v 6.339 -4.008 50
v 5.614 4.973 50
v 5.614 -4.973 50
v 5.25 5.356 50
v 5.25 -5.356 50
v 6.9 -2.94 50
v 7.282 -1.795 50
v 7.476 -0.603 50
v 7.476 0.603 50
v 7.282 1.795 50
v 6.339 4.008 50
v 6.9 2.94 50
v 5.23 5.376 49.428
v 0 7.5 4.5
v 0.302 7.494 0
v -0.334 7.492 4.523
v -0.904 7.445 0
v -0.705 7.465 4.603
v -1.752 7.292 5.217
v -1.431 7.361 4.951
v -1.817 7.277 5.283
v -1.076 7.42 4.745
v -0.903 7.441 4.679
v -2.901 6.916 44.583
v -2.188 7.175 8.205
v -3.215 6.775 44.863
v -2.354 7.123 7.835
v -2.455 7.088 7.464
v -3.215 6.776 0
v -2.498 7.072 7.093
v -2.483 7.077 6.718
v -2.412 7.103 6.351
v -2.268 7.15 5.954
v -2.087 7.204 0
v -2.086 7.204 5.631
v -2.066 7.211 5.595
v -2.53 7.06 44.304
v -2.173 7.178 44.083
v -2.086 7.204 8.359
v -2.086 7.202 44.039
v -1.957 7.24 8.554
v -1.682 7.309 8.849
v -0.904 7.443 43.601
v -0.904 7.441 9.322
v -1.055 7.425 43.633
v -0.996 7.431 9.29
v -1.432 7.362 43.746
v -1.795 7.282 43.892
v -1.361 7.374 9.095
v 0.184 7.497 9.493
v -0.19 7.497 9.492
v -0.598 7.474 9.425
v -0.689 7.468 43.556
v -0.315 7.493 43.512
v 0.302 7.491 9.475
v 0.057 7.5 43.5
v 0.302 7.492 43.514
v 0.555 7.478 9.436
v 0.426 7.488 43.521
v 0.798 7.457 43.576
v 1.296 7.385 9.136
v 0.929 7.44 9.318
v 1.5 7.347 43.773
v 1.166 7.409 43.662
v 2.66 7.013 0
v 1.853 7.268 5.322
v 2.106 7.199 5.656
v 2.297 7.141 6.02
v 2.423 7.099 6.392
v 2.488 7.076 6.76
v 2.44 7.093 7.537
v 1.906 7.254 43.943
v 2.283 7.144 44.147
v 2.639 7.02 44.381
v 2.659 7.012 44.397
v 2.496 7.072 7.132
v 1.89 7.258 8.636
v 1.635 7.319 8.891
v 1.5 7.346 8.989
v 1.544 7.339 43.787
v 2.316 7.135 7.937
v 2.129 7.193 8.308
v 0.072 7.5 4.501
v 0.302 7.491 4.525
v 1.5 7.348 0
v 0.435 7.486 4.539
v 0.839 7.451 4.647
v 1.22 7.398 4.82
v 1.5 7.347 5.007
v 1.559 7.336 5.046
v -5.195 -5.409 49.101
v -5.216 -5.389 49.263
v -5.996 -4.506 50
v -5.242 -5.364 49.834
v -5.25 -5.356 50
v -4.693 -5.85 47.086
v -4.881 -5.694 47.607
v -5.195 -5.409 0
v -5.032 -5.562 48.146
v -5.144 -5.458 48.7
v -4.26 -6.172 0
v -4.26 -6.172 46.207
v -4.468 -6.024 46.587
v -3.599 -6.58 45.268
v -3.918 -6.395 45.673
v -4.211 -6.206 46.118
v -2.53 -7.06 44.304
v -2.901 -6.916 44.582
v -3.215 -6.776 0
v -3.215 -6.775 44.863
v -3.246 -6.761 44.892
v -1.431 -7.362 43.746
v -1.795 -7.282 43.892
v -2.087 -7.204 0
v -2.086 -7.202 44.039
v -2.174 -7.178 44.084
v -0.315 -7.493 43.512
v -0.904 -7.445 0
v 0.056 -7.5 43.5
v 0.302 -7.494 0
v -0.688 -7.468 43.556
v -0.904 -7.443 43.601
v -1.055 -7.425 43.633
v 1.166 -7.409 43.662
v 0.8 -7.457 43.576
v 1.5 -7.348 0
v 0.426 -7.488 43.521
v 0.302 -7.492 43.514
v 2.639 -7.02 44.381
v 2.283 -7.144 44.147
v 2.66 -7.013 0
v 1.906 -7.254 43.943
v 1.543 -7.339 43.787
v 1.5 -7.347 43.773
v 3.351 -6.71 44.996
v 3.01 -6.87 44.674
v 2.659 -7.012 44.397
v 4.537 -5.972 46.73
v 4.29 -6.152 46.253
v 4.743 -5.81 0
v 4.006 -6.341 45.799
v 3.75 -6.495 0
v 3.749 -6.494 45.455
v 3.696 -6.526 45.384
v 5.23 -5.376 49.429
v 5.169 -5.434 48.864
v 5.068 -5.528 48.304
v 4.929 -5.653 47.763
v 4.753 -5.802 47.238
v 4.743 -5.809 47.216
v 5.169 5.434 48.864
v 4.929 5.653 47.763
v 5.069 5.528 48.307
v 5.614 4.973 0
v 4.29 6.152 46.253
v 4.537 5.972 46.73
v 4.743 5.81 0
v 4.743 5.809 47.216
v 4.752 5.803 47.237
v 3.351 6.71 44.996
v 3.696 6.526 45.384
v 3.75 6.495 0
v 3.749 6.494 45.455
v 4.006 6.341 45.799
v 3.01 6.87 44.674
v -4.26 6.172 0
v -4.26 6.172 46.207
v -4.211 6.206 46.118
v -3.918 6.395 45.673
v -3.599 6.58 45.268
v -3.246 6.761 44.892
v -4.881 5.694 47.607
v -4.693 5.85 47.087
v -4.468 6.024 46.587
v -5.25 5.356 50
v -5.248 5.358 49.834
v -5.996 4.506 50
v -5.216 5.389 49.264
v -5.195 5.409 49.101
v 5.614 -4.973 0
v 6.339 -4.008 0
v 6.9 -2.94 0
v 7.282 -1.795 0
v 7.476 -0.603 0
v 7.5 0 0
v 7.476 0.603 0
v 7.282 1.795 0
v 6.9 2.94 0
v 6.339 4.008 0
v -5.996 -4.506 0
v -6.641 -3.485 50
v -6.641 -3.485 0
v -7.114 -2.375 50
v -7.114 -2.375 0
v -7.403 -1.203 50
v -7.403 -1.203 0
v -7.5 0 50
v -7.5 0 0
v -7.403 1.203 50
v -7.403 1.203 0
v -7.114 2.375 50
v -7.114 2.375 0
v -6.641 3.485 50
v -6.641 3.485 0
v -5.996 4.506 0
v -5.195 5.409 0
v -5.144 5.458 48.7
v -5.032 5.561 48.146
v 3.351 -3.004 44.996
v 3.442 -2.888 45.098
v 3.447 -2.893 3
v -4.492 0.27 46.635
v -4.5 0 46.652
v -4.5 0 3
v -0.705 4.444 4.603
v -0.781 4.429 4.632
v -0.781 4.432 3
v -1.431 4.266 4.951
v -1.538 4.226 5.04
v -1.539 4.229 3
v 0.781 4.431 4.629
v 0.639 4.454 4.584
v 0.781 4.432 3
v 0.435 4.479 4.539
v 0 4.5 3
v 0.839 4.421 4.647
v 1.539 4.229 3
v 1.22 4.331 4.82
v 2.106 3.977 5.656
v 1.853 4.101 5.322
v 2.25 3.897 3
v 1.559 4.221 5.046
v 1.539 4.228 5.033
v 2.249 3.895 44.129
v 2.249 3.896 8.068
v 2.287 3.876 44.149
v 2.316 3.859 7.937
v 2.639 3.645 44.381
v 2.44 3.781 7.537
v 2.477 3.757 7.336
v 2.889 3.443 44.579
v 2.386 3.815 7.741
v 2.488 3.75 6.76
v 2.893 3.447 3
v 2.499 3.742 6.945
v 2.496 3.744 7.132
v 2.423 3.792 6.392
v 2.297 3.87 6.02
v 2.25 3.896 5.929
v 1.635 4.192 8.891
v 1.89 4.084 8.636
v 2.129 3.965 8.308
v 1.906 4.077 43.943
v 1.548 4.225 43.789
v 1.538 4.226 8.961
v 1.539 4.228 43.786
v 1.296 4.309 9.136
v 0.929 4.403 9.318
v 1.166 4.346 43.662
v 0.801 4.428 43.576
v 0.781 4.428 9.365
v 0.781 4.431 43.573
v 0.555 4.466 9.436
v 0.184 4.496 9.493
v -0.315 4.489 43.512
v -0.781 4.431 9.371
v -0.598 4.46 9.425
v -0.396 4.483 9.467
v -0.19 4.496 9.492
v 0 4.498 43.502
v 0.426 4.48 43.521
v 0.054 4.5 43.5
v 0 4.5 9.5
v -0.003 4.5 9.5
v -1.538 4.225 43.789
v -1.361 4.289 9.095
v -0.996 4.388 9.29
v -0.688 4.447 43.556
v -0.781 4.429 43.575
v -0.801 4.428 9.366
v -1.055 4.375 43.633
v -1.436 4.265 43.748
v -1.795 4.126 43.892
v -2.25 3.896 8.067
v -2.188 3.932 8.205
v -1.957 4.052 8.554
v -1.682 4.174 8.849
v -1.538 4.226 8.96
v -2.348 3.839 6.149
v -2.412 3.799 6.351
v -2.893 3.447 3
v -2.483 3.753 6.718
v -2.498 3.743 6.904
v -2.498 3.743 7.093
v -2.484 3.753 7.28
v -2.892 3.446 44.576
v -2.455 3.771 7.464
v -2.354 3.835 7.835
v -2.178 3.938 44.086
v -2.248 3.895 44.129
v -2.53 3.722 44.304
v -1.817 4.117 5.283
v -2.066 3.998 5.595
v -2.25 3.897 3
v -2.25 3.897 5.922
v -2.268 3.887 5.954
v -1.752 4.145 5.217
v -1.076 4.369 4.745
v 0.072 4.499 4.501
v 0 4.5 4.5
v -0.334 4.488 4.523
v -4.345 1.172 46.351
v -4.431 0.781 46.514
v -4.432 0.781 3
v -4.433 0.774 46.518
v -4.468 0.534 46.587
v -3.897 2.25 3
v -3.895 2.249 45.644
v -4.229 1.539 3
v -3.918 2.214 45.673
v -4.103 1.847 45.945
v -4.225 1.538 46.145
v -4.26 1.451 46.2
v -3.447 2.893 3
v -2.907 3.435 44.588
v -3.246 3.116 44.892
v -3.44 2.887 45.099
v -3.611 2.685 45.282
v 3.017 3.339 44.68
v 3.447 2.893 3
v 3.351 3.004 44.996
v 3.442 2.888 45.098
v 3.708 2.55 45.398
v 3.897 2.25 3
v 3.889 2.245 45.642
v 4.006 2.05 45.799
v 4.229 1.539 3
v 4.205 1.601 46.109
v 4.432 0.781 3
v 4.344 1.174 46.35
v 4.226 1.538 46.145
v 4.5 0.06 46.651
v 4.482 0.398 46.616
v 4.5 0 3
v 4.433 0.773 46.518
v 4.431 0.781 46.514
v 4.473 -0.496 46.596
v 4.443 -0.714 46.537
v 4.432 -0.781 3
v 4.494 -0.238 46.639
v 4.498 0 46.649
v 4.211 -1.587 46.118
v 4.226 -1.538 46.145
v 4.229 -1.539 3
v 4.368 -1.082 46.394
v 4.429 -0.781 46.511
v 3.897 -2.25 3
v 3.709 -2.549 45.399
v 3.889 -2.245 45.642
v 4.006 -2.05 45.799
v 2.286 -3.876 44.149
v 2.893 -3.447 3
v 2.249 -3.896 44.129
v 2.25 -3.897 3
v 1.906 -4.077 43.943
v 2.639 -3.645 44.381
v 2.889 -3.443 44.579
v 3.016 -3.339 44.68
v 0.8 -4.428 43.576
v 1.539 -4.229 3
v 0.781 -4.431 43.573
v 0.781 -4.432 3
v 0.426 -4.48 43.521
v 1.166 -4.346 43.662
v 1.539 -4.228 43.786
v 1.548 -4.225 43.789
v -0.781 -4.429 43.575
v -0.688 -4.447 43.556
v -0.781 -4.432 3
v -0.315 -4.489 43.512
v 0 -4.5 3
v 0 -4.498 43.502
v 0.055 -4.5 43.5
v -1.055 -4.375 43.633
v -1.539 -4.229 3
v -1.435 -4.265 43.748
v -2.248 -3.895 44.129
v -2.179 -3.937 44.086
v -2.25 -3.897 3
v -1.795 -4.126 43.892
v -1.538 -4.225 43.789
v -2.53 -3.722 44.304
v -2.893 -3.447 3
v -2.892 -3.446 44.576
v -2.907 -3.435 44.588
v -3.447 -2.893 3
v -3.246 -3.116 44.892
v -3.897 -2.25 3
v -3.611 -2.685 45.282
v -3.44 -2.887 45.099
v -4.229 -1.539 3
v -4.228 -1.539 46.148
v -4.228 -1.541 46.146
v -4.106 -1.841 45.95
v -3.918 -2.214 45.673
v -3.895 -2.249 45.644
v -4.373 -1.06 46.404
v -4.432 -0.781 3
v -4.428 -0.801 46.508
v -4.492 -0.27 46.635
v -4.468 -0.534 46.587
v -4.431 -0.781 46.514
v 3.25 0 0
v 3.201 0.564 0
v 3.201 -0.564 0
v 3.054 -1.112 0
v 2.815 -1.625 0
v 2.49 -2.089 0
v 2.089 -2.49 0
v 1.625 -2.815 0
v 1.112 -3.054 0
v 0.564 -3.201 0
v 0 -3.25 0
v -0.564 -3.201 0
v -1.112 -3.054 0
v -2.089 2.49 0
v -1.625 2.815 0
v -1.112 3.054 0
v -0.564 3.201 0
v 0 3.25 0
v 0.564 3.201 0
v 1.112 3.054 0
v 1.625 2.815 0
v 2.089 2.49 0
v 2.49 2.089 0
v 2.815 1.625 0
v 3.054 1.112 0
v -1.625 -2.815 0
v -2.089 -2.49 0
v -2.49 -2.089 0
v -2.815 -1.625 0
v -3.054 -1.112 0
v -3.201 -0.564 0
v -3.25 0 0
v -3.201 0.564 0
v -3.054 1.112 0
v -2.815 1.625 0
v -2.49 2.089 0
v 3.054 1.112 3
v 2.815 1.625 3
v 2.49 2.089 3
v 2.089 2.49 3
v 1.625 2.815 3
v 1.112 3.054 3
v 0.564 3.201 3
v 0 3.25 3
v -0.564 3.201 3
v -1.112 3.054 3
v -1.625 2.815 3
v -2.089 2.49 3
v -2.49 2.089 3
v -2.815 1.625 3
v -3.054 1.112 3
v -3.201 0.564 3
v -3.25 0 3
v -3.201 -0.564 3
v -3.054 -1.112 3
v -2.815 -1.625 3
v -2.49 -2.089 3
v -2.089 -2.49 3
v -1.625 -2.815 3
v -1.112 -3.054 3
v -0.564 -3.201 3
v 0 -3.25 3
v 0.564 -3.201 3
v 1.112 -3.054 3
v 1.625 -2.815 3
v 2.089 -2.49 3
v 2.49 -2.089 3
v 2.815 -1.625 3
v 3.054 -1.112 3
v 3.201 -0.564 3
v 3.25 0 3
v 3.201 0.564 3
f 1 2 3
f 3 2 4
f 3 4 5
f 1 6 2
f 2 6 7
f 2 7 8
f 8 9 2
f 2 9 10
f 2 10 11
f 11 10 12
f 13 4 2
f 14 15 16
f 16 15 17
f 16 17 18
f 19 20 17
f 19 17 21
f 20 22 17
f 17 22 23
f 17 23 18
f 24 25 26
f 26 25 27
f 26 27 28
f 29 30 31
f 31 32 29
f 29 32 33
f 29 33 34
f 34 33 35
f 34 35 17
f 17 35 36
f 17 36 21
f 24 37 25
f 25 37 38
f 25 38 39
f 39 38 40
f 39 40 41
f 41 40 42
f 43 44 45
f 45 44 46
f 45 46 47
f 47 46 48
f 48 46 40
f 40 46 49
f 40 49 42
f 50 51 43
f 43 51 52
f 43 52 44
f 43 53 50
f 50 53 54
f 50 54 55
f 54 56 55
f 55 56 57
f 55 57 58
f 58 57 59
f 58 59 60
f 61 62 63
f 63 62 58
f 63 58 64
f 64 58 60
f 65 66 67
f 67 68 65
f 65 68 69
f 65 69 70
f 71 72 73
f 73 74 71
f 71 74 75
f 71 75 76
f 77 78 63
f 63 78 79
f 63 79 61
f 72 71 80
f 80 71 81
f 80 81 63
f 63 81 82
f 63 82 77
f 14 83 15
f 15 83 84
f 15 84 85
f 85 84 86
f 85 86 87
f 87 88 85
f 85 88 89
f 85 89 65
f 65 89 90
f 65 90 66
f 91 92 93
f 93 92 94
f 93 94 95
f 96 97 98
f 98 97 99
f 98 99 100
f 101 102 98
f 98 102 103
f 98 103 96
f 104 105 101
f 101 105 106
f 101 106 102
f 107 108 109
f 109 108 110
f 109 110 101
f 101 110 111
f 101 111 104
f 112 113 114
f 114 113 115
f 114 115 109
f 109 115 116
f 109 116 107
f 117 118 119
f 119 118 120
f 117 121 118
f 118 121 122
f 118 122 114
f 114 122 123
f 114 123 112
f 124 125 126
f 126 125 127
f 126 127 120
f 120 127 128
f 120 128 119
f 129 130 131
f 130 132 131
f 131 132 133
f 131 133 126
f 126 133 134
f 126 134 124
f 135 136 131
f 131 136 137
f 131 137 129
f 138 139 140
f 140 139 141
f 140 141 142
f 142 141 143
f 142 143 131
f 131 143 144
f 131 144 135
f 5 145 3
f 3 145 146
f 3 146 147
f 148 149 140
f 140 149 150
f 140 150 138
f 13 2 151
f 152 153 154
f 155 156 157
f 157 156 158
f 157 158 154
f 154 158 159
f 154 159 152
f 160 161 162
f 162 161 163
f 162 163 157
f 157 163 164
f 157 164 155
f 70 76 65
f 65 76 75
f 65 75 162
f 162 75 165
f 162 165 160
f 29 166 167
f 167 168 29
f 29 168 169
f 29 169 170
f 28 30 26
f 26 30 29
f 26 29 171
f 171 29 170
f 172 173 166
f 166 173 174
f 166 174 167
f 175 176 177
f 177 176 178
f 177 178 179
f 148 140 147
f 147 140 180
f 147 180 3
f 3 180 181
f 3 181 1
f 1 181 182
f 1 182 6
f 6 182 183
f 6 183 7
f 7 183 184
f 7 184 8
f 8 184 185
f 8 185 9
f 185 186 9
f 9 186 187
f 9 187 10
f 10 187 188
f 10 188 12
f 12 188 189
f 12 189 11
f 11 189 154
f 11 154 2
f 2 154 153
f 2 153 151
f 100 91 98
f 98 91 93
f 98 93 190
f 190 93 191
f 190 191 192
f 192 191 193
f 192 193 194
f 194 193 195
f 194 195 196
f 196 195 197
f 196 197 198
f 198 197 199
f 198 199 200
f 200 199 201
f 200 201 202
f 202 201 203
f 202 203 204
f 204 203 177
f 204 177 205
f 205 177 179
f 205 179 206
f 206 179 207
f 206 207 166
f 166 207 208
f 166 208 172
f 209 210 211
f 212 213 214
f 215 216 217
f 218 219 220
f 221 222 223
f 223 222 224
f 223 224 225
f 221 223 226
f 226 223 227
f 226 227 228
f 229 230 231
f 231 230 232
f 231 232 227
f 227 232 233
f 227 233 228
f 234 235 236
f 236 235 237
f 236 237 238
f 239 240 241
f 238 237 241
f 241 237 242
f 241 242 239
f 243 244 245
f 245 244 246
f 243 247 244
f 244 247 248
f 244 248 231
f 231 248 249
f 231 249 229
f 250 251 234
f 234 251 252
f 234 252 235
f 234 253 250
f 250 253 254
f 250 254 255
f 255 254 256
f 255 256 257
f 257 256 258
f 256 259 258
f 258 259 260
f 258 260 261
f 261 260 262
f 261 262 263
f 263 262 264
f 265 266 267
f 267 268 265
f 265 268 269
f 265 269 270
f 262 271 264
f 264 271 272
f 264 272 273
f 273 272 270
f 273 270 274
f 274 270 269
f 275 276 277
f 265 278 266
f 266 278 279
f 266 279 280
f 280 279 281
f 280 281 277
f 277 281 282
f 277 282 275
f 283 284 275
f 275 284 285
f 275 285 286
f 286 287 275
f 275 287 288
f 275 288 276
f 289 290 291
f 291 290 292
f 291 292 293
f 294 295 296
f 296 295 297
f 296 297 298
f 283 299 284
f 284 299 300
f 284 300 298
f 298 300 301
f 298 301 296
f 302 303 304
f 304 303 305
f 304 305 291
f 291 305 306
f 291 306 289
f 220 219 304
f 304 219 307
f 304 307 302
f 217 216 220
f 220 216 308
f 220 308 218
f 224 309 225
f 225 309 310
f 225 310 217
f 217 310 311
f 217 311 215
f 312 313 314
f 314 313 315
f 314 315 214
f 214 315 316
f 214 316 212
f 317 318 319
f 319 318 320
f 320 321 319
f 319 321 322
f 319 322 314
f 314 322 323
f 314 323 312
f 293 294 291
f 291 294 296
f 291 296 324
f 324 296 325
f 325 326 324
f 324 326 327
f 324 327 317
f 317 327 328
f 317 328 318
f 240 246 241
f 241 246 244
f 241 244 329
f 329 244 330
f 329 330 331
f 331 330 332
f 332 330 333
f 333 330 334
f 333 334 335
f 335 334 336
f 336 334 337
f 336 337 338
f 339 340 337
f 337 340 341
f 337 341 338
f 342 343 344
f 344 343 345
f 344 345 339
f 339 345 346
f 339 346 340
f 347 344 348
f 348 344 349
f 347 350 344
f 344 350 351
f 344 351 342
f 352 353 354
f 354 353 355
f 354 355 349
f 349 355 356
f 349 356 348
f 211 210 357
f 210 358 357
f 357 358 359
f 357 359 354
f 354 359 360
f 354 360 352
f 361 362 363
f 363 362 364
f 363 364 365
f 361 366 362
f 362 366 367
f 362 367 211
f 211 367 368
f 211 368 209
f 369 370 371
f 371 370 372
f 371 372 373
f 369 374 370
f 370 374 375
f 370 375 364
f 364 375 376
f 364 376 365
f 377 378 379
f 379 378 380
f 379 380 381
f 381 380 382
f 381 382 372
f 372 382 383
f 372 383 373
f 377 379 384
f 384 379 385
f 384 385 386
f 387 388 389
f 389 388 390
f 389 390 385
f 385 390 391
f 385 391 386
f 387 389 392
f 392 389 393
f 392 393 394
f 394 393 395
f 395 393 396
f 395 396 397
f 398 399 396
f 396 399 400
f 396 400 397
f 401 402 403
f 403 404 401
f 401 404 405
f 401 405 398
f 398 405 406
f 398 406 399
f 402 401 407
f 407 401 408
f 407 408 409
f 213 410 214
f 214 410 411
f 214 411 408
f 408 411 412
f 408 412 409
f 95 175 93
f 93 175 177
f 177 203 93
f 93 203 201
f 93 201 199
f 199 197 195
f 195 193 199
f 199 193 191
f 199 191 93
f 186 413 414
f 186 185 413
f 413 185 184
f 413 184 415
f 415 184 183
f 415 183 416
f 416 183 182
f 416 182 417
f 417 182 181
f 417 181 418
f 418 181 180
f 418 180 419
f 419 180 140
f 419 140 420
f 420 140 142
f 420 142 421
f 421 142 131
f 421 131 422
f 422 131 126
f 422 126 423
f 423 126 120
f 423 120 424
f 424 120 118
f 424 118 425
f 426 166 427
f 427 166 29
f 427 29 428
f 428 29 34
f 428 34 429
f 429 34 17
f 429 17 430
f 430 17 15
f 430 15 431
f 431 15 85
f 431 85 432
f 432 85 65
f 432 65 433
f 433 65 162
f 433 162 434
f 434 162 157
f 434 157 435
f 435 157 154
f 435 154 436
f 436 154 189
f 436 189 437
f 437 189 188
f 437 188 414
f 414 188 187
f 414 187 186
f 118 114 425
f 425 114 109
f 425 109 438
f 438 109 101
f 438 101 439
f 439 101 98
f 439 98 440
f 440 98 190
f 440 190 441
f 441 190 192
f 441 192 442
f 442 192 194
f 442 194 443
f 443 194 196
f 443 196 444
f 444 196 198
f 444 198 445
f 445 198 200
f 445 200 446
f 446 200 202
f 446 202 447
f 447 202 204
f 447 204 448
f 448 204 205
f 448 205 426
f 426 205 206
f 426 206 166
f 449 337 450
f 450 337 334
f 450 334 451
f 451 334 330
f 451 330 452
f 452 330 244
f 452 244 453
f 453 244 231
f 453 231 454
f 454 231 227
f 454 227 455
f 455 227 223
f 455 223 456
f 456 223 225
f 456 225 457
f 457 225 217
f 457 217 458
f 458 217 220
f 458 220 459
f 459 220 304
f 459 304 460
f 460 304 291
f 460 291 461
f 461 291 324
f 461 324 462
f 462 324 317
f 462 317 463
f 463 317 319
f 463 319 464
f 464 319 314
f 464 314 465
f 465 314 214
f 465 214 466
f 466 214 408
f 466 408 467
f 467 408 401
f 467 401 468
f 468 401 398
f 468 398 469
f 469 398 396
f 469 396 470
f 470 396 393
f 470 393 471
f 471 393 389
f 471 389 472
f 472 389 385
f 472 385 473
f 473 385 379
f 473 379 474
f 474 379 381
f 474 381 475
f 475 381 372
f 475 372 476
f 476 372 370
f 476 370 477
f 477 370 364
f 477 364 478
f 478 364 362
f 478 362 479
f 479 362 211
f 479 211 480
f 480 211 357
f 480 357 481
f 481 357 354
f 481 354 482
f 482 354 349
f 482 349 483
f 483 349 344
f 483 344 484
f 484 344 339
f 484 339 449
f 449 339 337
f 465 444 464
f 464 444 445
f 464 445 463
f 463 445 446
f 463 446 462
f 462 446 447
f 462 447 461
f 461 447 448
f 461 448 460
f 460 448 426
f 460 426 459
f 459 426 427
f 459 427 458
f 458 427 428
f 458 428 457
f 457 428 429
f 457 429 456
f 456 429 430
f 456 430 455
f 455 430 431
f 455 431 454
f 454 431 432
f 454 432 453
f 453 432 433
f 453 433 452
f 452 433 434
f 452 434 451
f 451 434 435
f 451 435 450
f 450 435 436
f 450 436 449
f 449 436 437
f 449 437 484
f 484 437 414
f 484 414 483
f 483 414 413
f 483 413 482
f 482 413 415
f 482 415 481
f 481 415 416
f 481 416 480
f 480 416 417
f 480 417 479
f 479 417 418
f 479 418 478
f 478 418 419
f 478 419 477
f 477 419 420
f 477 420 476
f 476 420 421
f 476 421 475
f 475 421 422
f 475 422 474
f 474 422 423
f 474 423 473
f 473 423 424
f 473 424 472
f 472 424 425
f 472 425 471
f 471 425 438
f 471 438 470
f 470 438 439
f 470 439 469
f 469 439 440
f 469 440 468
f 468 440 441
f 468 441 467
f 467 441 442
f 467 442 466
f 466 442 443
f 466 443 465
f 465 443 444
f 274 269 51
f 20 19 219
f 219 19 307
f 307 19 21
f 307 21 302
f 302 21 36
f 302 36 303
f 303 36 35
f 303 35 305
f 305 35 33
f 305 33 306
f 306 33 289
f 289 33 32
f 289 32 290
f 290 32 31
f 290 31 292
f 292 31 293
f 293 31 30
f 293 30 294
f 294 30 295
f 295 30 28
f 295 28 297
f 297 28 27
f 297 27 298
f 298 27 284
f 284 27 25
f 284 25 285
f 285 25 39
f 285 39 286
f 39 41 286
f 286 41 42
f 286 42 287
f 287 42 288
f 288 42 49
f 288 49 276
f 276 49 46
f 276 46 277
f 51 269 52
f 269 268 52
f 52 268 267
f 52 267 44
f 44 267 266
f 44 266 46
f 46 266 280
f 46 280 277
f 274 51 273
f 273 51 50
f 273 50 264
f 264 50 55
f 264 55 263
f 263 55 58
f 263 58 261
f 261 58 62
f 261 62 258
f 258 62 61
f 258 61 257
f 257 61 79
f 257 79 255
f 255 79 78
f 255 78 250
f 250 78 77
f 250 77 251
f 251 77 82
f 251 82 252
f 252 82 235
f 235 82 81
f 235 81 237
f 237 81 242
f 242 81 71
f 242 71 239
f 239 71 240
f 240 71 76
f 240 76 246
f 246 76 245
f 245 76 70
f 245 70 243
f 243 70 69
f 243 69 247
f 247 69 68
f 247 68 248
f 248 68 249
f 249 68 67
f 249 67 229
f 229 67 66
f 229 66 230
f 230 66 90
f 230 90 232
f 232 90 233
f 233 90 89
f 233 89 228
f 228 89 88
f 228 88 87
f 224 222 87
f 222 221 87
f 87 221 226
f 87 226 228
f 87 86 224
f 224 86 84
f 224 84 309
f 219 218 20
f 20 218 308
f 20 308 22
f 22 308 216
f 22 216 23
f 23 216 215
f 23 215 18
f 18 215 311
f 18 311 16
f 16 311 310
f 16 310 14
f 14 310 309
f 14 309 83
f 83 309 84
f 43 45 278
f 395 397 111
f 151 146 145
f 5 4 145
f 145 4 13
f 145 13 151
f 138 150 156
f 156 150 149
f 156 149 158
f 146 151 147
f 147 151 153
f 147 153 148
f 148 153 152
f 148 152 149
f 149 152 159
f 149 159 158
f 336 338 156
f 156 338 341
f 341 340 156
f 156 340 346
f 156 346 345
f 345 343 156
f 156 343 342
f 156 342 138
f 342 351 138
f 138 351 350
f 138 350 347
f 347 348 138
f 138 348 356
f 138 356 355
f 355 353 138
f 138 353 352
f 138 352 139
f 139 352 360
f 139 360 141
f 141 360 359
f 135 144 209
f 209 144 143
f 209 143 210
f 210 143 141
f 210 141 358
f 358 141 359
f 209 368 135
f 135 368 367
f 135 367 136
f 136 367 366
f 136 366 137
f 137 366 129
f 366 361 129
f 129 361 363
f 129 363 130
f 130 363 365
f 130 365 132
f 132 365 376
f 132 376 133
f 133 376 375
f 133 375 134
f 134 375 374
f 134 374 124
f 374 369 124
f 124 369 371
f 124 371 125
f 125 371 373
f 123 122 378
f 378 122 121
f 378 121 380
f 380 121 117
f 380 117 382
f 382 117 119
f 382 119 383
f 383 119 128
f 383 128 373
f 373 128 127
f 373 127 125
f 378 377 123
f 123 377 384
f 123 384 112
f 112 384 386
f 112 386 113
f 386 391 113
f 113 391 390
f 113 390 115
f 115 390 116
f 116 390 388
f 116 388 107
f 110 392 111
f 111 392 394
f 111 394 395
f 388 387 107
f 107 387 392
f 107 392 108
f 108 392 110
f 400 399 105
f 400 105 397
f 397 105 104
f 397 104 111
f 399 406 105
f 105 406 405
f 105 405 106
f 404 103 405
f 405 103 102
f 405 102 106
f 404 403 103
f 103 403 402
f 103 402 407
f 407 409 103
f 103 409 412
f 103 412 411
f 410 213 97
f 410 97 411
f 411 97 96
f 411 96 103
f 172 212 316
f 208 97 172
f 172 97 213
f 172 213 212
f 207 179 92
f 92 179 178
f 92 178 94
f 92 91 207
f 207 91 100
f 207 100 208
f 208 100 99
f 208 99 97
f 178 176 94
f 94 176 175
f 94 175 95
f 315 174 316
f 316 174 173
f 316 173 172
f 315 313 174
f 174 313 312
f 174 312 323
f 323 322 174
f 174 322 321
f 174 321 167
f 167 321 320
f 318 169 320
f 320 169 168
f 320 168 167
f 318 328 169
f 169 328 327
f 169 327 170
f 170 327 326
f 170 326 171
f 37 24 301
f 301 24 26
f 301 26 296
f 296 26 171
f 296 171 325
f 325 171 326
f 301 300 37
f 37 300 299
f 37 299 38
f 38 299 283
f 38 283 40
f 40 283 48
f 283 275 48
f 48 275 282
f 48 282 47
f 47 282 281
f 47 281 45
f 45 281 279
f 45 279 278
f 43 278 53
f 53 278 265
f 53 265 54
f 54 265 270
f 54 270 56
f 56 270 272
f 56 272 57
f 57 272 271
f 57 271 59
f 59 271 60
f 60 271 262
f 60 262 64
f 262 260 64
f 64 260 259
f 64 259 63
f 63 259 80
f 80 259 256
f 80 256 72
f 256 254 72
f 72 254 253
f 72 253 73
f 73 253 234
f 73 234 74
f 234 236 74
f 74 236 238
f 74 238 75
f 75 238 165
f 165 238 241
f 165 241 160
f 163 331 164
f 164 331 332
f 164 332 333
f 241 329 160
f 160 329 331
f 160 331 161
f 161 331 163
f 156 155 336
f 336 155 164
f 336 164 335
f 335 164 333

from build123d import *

# Parameters (mm, degrees)
ESQUISSE1_R                  = 7.499999999999999
BOSS_EXTRU_1_DEPTH           = 50
COQUE1_T                     = -3
ESQUISSE2_R                  = 3.25
ENL_V_MAT_EXTRU_1_DEPTH      = 3
ENL_V_START                  = 3.741658222
ENL_V_MAT_EXTRU_2_DEPTH      = 3.758341878
ENL_V_MAT_EXTRU_3_DEPTH      = 52.1126209805562
ENL_V_MAT_EXTRU_3_DEPTH_BACK = 52.1126209805562
ESQUISSE5_RX                 = 6.5
ESQUISSE5_RY                 = 5.25


# Read off the part's stored shape, not the designer's step: Enlèv. mat.-Extru.2
with BuildPart() as part:
    # Esquisse1 → Boss.-Extru.1 (new body)
    with BuildSketch(Plane.XY):
        Circle(ESQUISSE1_R)
    extrude(amount=BOSS_EXTRU_1_DEPTH)

    # Coque1
    coque1_openings = [part.faces().sort_by_distance(p)[0] for p in [
        (0, 0, 50),
    ]]
    offset(amount=COQUE1_T, openings=coque1_openings, kind=Kind.INTERSECTION)

    # Esquisse2 → Enlèv. mat.-Extru.1 (cut)
    with BuildSketch(Plane(origin=(0, 0, 0), x_dir=(-1, 0, 0), z_dir=(0, 0, -1))):
        Circle(ESQUISSE2_R)
    extrude(amount=-ENL_V_MAT_EXTRU_1_DEPTH, mode=Mode.SUBTRACT)

    # Enlèv. mat.-Extru.2 outline → Enlèv. mat.-Extru.2 (cut)
    with BuildSketch(Plane(origin=(0, 0, 0), x_dir=(1, 0, 0), z_dir=(0, 1, 0)).offset(ENL_V_START)):
        with BuildLine():
            add(Edge.make_bspline(
                [(0, -4.5), (-0.665777373921639, -4.5), (-1.3108797918298, -4.77502806566904), (-2.22588234313574, -5.69066668426073), (-2.49954115482472, -6.34073255596721), (-2.50045763095517, -7.65578287810988), (-2.2278471774147, -8.30775806725704), (-1.30741263251952, -9.22804991342628), (-0.656855076796676, -9.49973692434233), (0.654851008774013, -9.5002626740288), (1.30573460063621, -9.2296895812874), (2.22937932360176, -8.306264256457), (2.49994577794749, -7.65925317637901), (2.50005420513552, -6.34115812623399), (2.22645885760644, -5.69117807090988), (1.31005066740923, -4.77426391153354), (0.665777373921637, -4.5), (0, -4.5)],
                knots=[0, 0, 0, 0, 0.125, 0.125, 0.25, 0.25, 0.375, 0.375, 0.5, 0.5, 0.625, 0.625, 0.75, 0.75, 0.875, 0.875, 1, 1, 1, 1], degree=3))
        make_face()
    extrude(amount=ENL_V_MAT_EXTRU_2_DEPTH, mode=Mode.SUBTRACT)

    # Esquisse5 → Enlèv. mat.-Extru.3 (cut, two sides: drawn at the far end of the back side and taken through both)
    with BuildSketch(Plane(origin=(0, 0, 0), x_dir=(1, 0, 0), z_dir=(0, 1, 0)).offset(-ENL_V_MAT_EXTRU_3_DEPTH_BACK)):
        with Locations(Location((0, -50), (0, 0, -90))):
            Ellipse(ESQUISSE5_RX, ESQUISSE5_RY)
    extrude(amount=ENL_V_MAT_EXTRU_3_DEPTH + ENL_V_MAT_EXTRU_3_DEPTH_BACK, mode=Mode.SUBTRACT)


solid = part.part
